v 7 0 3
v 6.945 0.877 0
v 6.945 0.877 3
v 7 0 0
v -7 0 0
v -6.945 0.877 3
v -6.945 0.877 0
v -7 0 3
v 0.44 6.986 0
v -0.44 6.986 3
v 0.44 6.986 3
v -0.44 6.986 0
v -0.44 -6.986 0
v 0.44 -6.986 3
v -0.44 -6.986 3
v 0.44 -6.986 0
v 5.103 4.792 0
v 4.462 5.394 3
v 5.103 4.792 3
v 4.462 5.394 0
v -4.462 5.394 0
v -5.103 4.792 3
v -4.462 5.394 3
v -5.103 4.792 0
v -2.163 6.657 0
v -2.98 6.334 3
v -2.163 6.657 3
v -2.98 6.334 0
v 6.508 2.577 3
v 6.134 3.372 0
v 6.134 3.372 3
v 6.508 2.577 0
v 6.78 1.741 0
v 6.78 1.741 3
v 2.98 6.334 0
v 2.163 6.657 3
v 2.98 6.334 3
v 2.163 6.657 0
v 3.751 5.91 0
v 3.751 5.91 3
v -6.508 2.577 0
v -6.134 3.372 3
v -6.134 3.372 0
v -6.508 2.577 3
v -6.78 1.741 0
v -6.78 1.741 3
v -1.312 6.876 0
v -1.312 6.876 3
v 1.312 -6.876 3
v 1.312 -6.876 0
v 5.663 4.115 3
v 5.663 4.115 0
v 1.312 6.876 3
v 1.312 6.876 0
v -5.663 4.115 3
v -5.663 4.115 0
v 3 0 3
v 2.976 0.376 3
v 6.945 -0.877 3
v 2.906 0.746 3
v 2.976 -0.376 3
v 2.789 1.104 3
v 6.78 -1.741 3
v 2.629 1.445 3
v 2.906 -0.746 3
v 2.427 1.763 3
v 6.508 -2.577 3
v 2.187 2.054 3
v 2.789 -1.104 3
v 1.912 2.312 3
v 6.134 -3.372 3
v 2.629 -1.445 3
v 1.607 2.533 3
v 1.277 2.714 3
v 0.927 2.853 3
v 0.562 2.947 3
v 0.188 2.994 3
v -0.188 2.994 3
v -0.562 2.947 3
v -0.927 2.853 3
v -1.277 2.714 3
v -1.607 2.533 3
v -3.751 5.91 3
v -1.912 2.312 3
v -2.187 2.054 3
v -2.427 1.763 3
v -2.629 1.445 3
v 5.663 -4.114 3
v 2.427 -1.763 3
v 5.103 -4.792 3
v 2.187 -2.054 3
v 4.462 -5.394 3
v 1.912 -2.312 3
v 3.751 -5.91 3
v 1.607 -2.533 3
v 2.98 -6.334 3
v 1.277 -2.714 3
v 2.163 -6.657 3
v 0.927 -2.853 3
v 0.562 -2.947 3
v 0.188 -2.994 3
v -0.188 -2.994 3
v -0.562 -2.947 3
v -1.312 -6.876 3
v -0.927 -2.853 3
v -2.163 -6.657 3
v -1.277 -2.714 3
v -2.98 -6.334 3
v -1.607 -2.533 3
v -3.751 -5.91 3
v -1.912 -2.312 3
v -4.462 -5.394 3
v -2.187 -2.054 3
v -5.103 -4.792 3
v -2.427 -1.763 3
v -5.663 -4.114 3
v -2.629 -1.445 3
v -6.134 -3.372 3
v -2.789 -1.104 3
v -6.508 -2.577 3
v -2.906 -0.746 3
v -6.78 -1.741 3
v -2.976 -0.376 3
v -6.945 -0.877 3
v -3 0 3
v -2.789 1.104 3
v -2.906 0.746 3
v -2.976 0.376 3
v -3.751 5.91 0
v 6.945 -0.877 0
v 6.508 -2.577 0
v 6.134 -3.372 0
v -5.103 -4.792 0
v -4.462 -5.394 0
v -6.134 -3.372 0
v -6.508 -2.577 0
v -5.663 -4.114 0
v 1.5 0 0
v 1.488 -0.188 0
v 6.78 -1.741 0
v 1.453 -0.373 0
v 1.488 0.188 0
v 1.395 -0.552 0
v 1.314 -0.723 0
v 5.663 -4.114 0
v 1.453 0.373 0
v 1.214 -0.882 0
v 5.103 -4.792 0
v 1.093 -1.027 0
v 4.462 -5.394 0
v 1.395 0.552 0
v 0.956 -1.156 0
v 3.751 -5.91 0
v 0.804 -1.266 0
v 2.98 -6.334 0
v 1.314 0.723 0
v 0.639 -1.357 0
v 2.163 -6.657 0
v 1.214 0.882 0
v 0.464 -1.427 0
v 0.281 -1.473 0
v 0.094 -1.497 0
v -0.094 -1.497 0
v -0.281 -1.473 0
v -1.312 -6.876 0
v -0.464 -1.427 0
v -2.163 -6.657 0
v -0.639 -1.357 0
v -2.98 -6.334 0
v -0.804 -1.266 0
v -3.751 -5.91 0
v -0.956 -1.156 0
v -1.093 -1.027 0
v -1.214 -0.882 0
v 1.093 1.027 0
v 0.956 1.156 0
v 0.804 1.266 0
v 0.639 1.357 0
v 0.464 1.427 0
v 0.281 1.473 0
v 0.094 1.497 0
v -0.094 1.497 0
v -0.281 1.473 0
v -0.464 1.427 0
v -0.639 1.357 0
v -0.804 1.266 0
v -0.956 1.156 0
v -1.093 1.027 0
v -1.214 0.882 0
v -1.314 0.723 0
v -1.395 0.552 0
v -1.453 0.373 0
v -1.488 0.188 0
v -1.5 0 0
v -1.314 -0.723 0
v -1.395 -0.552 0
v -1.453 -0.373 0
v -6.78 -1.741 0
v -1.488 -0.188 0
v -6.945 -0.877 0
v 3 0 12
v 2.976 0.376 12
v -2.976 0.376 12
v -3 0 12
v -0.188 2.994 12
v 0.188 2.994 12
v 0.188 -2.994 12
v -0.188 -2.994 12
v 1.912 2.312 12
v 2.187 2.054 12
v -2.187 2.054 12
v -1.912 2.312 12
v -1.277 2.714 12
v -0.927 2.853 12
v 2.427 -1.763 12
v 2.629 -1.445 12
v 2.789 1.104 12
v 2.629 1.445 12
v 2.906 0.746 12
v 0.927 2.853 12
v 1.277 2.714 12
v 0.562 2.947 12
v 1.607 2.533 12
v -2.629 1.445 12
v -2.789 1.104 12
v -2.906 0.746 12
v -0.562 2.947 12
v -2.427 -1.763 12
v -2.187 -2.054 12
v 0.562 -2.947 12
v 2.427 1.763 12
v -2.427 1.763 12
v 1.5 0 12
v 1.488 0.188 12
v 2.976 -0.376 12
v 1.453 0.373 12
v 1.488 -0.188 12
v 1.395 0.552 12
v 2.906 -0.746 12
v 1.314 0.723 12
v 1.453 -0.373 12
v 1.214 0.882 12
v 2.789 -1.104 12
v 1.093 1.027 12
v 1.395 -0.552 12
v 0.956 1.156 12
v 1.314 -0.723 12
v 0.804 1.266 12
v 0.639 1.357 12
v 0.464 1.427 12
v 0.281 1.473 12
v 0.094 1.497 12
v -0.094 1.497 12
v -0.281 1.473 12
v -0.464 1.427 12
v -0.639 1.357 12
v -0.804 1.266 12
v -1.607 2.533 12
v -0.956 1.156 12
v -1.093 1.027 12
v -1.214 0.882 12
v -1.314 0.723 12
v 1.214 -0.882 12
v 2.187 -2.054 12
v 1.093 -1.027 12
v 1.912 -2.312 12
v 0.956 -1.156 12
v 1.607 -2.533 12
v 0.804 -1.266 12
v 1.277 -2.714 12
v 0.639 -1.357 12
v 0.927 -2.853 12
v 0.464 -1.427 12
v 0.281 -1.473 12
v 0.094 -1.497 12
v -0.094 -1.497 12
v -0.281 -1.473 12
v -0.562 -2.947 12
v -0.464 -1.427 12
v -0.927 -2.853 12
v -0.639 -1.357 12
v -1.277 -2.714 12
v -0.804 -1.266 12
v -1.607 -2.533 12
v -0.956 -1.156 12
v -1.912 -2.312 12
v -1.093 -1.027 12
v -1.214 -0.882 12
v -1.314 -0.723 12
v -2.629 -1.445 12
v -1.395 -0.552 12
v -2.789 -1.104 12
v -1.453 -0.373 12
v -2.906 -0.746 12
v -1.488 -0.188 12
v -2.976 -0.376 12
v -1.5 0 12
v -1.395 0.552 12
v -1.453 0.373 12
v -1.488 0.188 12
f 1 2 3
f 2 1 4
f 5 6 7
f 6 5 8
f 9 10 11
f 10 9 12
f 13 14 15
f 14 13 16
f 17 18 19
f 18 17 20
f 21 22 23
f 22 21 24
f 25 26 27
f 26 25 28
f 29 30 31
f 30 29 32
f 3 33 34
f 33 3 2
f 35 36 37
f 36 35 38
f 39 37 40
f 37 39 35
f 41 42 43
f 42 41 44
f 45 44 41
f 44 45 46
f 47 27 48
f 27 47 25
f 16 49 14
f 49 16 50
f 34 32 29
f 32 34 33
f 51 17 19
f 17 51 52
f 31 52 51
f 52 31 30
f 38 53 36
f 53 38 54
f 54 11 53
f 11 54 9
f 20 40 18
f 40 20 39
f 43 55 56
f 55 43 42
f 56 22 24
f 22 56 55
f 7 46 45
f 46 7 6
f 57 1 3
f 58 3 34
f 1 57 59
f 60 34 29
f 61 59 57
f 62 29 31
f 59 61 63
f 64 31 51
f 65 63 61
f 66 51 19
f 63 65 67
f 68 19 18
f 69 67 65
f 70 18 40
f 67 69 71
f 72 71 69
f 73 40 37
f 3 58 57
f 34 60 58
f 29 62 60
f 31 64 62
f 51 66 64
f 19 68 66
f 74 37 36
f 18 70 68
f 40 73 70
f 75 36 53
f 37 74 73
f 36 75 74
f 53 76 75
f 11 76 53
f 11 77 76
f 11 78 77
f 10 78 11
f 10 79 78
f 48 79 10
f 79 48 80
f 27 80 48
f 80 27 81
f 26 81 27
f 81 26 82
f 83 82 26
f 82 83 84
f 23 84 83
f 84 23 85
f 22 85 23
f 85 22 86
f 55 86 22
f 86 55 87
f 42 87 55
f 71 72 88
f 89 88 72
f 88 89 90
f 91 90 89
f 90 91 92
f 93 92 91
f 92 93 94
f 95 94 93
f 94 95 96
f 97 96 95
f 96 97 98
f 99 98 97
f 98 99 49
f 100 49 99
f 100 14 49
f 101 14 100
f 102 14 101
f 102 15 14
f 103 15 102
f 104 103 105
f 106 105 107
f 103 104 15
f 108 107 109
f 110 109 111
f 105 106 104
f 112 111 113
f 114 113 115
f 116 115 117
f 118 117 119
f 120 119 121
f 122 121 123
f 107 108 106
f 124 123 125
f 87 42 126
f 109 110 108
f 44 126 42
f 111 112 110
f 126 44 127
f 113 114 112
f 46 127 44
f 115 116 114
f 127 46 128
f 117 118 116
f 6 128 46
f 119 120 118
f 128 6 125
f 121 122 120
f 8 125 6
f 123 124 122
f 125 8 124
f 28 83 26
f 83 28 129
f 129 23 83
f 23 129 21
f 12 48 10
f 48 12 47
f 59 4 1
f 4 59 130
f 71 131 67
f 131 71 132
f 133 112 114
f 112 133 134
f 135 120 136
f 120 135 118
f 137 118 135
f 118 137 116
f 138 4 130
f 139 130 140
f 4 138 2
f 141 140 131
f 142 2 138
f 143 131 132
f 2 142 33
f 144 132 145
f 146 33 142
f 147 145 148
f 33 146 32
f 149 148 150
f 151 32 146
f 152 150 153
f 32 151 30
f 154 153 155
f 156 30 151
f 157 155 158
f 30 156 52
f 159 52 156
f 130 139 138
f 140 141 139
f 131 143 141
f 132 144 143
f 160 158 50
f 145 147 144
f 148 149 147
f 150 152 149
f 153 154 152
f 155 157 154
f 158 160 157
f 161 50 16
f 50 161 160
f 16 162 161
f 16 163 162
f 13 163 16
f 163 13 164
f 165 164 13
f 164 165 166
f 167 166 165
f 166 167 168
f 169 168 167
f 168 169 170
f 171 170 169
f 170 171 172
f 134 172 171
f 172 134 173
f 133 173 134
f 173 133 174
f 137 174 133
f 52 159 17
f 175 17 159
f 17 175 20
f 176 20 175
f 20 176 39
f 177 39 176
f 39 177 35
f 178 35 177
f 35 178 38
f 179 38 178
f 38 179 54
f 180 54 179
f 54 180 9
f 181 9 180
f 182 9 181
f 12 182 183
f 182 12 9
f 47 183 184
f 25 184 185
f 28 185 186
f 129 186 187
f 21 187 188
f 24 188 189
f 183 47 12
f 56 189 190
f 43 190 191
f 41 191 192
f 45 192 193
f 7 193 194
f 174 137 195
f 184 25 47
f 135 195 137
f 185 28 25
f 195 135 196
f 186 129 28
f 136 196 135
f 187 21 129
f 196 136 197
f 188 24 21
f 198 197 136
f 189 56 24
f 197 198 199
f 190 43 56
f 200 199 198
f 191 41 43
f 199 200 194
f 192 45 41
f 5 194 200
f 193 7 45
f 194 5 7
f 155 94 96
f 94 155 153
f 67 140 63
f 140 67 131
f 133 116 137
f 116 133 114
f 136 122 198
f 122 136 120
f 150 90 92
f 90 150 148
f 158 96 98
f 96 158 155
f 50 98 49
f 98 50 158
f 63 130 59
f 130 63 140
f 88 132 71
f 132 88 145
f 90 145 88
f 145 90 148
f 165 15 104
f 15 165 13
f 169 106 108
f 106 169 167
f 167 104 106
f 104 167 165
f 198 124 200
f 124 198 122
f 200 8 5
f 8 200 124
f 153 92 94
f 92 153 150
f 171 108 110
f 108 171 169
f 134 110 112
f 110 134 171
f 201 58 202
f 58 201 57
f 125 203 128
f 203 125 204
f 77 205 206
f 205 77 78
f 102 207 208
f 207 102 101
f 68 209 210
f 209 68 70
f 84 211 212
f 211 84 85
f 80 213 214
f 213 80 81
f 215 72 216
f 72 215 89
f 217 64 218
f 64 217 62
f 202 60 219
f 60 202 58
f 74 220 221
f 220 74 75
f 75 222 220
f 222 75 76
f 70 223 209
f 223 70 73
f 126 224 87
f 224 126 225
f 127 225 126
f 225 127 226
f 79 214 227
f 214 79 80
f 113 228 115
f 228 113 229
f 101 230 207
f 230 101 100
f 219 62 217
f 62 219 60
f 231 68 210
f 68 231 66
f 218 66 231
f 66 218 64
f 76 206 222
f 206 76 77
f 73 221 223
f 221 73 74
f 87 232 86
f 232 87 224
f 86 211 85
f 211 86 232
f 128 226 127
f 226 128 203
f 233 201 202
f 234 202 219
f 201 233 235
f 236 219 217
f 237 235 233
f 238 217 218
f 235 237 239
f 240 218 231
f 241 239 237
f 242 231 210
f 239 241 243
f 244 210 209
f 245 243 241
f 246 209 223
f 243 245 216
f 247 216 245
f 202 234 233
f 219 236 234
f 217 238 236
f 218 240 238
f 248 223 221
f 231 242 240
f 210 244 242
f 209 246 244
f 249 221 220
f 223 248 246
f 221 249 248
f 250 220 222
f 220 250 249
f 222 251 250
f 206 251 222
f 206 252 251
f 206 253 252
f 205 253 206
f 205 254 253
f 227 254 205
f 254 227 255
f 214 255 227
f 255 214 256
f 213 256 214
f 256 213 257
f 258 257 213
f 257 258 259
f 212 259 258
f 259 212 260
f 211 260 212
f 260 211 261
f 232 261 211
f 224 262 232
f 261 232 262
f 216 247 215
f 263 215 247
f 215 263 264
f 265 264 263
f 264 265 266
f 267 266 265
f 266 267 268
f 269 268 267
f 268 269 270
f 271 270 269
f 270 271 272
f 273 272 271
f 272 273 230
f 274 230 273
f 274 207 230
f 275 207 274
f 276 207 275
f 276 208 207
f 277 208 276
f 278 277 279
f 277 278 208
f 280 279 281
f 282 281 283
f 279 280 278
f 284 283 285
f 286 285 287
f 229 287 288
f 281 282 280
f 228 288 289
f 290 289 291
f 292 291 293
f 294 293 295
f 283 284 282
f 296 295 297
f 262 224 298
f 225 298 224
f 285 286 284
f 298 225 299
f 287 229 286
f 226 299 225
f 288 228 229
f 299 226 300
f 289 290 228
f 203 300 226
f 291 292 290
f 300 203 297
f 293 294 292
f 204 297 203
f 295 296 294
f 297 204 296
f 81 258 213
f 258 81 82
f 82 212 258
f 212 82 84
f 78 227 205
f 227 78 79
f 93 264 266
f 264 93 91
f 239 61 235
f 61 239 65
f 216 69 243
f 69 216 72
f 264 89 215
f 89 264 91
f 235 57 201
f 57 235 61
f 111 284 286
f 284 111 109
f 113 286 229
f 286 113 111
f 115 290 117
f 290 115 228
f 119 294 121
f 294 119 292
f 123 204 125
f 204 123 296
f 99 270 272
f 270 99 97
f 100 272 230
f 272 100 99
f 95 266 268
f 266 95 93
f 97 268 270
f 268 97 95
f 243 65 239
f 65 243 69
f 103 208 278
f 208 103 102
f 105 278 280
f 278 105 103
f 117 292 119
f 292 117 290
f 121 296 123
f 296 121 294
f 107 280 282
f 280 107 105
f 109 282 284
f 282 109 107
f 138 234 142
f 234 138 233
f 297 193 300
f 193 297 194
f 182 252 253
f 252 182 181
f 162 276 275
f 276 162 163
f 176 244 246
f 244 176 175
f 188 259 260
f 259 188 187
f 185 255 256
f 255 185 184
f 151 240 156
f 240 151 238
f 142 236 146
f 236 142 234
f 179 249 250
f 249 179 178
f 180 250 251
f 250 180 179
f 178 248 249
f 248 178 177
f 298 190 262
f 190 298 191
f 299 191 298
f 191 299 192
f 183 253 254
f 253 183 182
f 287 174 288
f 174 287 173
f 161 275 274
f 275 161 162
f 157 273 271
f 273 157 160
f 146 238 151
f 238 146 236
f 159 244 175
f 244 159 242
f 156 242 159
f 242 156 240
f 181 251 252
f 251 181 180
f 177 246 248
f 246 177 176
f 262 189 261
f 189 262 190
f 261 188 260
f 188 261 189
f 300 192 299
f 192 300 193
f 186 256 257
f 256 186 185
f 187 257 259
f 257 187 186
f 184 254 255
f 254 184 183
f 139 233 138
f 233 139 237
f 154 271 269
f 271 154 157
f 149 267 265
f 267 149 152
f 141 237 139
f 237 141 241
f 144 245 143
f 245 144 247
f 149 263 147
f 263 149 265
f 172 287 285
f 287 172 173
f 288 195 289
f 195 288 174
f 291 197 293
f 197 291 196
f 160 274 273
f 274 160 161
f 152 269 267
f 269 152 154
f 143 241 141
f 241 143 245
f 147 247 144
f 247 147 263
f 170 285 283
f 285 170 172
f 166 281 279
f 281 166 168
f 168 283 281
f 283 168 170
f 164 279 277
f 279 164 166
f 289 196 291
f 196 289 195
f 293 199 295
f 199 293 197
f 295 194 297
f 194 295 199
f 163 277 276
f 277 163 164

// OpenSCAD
$fn = 50;


difference() {
	union() {
		translate(v = [0, 0, 0]) {
			rotate(a = [0, 0, 0]) {
				cylinder(h = 3, r = 7.0000000000);
			}
		}
		translate(v = [0, 0, 0]) {
			rotate(a = [0, 0, 0]) {
				cylinder(h = 12, r = 3.0000000000);
			}
		}
	}
	union() {
		translate(v = [0, 0, -125.0000000000]) {
			rotate(a = [0, 0, 0]) {
				cylinder(h = 250, r = 1.5000000000);
			}
		}
	}
}
